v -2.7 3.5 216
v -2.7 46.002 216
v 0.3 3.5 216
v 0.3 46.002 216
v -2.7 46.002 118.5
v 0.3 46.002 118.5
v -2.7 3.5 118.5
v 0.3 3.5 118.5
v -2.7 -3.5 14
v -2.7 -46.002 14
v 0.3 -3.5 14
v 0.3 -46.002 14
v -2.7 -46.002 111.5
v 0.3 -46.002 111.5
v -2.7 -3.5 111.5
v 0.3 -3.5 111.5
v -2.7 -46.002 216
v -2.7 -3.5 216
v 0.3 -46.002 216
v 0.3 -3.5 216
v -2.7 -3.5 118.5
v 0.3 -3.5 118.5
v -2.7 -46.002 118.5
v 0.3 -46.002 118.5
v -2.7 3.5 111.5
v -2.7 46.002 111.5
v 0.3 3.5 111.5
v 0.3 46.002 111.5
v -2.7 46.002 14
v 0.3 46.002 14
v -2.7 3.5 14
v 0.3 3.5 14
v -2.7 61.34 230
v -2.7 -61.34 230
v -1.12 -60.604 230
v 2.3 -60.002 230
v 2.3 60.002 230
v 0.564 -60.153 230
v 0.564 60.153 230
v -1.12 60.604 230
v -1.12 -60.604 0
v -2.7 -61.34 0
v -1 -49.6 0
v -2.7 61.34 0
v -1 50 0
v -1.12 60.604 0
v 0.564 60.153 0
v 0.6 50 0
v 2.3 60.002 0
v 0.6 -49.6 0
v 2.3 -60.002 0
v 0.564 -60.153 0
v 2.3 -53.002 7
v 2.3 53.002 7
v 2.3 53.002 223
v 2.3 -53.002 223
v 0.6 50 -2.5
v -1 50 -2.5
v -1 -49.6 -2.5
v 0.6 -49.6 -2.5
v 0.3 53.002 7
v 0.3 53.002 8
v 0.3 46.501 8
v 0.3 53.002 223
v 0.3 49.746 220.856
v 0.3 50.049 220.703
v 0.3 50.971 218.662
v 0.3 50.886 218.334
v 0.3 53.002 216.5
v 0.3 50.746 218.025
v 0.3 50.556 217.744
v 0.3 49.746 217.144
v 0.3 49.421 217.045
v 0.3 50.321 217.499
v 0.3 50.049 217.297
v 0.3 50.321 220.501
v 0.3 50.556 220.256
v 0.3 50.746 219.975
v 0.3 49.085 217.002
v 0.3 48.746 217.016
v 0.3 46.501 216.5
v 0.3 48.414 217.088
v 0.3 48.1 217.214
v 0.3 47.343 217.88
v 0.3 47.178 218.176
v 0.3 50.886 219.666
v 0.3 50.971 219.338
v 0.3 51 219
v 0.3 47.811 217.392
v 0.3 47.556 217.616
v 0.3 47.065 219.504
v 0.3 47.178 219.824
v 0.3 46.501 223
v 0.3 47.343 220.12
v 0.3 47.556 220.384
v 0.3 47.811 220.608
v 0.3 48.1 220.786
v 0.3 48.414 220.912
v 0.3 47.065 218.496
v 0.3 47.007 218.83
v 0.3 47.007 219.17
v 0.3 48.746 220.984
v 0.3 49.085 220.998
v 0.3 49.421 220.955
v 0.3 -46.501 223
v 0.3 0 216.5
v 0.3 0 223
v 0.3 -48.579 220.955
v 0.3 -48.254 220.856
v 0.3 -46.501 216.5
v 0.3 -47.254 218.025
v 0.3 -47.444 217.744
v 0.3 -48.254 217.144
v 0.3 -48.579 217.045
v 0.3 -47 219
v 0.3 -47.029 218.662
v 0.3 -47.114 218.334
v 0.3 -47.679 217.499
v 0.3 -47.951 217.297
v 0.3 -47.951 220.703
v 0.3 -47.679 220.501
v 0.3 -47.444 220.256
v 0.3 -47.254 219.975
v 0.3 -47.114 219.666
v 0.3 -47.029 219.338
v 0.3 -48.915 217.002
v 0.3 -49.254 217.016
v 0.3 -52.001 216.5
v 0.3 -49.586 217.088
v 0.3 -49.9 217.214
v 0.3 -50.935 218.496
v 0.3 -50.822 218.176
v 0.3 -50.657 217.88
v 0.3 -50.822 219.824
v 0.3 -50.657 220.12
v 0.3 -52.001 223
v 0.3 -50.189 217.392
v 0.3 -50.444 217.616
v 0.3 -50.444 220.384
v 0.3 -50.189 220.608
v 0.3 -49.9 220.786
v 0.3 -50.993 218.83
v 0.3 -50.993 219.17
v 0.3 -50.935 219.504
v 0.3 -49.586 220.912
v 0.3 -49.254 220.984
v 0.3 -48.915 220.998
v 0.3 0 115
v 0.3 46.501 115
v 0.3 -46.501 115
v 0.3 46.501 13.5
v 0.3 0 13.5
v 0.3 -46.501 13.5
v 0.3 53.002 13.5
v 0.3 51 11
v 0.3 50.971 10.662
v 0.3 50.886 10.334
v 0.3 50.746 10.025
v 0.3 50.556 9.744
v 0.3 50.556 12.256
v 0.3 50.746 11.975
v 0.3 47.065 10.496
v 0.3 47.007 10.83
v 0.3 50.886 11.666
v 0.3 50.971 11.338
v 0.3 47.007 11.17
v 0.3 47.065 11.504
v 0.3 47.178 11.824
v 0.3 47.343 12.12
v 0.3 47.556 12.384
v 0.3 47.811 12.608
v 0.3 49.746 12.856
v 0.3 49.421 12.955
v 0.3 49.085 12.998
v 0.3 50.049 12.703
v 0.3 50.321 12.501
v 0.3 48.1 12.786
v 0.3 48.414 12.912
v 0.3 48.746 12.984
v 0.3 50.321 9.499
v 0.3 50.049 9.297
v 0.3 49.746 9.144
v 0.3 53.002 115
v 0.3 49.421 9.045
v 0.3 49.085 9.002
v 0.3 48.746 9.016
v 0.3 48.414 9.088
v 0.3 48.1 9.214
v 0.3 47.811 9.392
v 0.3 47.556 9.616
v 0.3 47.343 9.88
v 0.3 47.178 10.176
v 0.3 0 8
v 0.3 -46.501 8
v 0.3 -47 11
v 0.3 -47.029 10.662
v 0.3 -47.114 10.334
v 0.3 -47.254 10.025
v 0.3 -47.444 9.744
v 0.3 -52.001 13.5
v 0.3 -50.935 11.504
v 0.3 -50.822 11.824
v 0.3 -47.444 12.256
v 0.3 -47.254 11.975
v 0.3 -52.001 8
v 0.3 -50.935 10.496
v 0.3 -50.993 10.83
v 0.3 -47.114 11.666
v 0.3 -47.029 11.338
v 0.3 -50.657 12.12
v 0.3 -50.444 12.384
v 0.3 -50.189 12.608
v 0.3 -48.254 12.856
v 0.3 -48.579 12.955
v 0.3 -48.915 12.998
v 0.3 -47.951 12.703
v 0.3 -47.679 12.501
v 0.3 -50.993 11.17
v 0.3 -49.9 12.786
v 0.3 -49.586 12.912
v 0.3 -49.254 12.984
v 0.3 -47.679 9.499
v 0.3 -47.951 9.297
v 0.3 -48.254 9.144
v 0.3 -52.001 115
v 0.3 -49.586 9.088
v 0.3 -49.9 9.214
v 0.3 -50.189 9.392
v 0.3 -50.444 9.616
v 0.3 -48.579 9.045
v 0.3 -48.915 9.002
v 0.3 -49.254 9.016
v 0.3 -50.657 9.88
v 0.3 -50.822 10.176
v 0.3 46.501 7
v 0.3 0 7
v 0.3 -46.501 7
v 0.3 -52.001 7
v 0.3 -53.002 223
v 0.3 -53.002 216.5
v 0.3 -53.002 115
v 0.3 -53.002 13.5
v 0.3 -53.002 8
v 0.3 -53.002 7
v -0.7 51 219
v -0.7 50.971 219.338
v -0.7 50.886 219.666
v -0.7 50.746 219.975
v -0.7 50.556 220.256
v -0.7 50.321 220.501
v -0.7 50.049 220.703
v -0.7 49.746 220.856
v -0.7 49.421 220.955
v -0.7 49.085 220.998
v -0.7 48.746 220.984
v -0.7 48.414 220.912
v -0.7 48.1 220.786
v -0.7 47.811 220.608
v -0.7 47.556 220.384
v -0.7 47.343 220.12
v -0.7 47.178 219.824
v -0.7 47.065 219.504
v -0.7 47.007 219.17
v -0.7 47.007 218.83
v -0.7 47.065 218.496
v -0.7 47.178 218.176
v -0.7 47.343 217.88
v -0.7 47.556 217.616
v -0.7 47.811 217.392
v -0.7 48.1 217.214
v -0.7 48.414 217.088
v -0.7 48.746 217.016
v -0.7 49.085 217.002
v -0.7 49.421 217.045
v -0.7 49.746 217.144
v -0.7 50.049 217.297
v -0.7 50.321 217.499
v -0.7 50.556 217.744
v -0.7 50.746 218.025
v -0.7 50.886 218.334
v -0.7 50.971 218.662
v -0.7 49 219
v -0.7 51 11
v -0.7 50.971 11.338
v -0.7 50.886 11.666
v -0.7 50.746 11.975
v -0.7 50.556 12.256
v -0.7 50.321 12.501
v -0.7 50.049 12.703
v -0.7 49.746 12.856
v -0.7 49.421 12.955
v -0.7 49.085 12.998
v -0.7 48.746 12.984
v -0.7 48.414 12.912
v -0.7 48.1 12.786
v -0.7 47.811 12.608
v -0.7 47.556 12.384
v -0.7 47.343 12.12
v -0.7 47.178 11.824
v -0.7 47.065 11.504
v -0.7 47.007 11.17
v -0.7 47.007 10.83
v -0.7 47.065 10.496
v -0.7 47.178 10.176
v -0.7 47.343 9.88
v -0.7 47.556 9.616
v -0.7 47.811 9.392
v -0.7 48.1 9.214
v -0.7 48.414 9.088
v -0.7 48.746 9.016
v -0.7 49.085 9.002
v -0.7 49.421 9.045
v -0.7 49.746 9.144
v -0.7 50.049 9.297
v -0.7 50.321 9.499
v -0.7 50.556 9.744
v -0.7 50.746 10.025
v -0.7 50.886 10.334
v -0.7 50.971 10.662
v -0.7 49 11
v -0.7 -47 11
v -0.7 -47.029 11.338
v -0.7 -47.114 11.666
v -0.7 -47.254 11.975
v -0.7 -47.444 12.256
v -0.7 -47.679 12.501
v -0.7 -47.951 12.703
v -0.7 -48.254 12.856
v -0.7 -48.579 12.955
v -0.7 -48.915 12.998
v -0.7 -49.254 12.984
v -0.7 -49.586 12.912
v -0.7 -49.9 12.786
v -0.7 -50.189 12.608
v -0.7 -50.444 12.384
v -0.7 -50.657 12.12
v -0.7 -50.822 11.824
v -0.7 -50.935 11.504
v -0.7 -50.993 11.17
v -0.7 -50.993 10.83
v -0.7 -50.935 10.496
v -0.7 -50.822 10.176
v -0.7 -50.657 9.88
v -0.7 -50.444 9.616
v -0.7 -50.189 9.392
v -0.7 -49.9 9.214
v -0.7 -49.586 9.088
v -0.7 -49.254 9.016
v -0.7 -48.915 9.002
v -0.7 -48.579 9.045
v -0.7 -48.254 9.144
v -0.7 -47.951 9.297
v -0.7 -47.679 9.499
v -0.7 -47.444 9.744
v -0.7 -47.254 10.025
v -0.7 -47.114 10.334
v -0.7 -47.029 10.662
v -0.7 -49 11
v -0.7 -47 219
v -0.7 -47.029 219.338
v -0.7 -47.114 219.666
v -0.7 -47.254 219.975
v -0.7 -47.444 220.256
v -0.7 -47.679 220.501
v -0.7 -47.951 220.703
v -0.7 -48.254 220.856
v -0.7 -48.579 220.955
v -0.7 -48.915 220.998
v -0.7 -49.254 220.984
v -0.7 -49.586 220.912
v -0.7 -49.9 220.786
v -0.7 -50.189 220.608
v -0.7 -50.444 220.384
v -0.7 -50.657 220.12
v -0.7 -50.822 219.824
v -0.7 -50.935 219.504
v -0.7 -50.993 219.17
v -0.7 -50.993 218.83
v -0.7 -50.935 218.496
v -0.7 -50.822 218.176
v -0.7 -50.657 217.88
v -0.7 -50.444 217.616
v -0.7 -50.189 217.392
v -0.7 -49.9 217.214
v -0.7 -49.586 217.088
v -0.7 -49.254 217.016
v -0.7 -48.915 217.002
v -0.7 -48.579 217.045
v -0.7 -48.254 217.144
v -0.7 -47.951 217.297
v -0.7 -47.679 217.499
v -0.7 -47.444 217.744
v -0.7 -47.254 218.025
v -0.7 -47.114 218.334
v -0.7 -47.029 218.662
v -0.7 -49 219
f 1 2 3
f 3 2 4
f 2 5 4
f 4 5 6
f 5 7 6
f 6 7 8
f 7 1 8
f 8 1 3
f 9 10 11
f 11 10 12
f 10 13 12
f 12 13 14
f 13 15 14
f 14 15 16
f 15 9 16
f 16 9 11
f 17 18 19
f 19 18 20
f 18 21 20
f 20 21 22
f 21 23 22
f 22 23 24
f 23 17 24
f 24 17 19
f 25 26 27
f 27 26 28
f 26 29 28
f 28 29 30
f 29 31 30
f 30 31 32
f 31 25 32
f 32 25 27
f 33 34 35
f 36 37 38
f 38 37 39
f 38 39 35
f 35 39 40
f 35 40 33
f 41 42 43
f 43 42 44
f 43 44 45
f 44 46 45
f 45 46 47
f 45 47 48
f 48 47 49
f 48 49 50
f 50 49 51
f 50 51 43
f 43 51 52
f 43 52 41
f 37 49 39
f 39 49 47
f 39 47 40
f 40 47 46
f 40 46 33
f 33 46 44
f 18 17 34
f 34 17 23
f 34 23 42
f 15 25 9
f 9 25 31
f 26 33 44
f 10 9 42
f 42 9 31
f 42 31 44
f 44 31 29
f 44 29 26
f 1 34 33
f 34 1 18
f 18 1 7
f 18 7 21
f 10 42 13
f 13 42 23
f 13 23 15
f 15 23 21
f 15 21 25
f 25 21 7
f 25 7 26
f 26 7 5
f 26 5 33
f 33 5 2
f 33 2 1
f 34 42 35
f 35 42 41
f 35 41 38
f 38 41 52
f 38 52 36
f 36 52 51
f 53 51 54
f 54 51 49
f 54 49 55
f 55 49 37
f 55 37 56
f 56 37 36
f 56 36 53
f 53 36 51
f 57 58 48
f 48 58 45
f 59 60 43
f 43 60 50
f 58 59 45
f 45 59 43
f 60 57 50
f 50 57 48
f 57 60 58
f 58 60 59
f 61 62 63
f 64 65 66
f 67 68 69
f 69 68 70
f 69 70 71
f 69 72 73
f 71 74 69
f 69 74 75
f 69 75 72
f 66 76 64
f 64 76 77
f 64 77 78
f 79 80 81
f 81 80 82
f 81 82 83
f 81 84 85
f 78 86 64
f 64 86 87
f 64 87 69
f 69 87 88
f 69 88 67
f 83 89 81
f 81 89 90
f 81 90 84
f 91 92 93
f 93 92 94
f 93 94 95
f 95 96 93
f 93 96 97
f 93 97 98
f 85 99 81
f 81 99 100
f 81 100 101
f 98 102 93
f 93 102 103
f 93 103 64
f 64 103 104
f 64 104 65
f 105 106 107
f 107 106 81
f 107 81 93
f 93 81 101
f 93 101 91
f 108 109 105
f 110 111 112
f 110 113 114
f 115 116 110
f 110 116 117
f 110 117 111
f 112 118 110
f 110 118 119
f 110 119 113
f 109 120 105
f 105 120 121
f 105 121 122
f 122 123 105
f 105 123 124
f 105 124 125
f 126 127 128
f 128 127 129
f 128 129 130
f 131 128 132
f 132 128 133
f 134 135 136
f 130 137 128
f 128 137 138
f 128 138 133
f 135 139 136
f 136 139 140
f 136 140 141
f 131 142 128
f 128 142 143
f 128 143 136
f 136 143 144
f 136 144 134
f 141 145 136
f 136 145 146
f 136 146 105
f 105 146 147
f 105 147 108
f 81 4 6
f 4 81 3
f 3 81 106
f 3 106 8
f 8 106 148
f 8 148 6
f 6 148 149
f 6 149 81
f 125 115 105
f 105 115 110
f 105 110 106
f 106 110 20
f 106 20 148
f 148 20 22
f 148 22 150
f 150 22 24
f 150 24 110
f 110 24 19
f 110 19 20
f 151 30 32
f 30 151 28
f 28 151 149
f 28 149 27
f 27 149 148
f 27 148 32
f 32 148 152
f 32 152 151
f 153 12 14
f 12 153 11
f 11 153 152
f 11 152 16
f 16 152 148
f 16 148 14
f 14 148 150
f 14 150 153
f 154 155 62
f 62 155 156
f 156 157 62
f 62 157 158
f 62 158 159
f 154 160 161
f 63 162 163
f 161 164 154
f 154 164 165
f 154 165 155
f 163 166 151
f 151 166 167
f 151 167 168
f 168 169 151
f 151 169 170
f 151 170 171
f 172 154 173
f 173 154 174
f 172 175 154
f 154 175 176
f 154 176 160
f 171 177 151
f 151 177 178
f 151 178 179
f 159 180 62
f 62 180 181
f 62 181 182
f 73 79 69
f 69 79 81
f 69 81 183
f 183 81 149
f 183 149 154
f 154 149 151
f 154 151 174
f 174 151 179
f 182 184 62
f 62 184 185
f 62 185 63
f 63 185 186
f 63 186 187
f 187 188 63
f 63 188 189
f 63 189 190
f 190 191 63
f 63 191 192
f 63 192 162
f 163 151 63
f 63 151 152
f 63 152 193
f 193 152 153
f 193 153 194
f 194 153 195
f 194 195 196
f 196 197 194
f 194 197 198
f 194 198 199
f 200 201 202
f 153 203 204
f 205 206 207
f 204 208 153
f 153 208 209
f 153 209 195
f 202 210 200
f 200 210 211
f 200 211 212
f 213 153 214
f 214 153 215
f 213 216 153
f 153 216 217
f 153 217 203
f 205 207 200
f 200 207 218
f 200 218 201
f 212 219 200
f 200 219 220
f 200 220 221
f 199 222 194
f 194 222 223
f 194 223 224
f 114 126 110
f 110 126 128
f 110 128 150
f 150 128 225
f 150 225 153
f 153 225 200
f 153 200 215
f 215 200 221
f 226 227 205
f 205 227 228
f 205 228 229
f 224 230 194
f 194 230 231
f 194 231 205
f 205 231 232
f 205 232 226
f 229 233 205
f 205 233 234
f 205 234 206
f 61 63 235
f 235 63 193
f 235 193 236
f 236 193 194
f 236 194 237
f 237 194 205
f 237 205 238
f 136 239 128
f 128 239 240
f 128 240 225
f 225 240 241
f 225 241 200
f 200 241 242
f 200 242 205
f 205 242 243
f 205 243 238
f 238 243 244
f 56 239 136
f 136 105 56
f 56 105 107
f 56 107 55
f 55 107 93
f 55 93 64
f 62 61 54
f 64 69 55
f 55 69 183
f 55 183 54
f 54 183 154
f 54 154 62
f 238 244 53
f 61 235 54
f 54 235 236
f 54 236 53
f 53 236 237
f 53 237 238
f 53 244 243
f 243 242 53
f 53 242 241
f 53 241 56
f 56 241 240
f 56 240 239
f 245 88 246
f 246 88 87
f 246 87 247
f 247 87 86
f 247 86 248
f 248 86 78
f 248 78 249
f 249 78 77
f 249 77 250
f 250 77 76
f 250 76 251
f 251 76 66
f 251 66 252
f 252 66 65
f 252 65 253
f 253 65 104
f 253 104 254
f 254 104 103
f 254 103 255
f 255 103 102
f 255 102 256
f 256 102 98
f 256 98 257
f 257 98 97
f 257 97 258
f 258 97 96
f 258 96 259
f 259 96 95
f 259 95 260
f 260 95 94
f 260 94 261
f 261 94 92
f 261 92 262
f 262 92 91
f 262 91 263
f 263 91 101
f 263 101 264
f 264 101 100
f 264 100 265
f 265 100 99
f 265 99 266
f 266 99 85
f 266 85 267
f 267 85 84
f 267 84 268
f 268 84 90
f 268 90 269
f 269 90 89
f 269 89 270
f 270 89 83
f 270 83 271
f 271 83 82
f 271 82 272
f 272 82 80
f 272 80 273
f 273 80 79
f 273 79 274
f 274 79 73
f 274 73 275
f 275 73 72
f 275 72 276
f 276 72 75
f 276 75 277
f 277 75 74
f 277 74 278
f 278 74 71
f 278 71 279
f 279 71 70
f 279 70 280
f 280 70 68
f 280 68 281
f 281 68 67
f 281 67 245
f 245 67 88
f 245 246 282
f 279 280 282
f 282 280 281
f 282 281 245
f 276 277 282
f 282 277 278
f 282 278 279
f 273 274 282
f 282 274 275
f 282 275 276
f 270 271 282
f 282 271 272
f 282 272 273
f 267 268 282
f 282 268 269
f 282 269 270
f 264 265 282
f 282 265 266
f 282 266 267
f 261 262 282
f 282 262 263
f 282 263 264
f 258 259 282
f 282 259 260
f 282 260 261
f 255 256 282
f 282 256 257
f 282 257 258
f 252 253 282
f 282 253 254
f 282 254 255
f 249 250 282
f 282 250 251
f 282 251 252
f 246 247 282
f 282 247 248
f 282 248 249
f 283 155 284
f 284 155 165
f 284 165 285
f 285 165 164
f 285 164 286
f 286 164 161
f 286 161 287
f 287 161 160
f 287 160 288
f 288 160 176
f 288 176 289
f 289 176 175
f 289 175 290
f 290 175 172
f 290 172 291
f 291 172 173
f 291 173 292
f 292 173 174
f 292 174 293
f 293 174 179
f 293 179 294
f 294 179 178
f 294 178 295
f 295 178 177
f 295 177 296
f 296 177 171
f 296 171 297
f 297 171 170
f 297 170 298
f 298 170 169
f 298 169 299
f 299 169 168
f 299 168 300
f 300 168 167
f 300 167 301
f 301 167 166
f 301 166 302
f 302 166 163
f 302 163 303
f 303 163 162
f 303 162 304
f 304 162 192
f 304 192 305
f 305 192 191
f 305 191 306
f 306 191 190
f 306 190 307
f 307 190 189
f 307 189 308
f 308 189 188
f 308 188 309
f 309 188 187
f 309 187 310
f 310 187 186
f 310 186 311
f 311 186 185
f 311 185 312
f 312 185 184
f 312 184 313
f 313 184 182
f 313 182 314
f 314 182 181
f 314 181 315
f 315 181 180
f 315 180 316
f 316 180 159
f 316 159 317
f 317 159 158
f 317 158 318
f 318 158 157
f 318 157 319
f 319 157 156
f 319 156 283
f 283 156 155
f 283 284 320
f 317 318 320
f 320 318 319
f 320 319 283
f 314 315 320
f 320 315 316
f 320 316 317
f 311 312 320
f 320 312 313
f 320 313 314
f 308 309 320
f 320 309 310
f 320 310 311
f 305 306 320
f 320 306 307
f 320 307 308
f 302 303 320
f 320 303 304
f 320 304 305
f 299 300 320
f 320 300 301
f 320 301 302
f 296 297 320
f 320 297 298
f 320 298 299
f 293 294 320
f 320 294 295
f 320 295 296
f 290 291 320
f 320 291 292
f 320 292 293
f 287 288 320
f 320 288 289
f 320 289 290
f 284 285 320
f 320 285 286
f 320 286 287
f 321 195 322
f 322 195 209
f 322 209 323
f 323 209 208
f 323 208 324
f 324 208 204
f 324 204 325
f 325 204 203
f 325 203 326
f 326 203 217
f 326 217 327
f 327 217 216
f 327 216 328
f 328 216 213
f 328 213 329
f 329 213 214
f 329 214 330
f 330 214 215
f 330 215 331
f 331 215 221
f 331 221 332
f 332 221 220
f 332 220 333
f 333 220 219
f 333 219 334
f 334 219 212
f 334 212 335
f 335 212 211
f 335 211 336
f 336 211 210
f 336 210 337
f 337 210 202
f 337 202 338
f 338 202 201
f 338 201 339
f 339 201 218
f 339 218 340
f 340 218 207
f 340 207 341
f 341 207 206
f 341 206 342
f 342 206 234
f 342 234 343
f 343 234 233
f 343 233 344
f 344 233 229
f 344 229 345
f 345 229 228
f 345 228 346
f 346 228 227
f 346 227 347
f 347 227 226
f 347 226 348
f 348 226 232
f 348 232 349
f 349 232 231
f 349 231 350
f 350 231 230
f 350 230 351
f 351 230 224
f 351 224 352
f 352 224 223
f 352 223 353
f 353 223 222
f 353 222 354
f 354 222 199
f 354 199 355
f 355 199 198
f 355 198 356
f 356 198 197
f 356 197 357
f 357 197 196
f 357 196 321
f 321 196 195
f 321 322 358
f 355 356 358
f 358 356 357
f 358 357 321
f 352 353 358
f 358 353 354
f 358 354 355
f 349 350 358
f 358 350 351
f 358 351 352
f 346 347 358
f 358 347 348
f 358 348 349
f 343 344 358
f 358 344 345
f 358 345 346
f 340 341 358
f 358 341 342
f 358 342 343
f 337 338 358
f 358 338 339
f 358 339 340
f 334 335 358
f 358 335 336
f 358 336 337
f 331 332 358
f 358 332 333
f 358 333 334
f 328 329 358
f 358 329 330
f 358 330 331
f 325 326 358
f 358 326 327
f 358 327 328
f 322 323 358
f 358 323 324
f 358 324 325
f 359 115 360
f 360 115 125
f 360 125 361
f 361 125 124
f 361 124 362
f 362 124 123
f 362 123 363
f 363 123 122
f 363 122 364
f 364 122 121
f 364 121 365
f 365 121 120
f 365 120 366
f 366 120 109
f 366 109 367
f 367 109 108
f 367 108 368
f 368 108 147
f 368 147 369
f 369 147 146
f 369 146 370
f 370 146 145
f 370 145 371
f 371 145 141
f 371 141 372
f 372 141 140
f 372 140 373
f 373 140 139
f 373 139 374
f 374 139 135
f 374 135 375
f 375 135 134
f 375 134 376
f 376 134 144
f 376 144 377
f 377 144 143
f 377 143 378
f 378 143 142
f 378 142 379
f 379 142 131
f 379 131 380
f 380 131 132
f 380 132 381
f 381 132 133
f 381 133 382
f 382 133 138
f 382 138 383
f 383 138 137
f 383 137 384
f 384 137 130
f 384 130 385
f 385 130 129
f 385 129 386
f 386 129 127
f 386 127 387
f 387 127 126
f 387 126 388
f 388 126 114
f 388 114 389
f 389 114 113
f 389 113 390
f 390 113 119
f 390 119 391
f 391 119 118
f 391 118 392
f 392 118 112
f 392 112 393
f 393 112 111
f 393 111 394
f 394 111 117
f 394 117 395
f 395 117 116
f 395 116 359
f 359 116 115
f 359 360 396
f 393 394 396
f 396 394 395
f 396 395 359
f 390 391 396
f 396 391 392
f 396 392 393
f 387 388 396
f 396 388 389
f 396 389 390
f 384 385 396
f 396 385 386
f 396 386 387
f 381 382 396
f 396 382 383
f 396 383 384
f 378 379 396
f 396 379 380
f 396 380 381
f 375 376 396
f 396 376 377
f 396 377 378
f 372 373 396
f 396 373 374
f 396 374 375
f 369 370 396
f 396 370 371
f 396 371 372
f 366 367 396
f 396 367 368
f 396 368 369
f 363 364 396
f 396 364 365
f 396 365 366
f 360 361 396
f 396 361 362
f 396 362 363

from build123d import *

# Parameters (mm, degrees)
ESBO_O1_W                = 1.6
ESBO_O1_H                = 99.6
RESSALTO_EXTRUS_O1_DEPTH = 230
ESBO_O2_W                = 1.6
ESBO_O2_H                = 99.6
RESSALTO_EXTRUS_O2_DEPTH = 232.5
ESBO_O5_W                = 97.5
ESBO_O5_H                = 42.5020002
CORTE_EXTRUS_O1_DEPTH    = 230
ESBO_O3_W                = 216
ESBO_O3_H                = 106.0040004
CORTE_EXTRUS_O2_DEPTH    = 2
ESBO_O8_R                = 2
CORTE_EXTRUS_O3_DEPTH    = 1


with BuildPart() as part:
    # Esboço1 → Ressalto-extrusão1 (new body)
    with BuildSketch(Plane.XY):
        with BuildLine():
            Line((-2.7, -61.339745962), (-2.7, 61.339745962))
            ThreePointArc((-2.7, 61.339745962), (-0.288049674, 60.341775891), (2.3, 60.0020002))
            Line((2.3, 60.0020002), (2.3, -60.0020002))
            ThreePointArc((2.3, -60.0020002), (-0.288049674, -60.341775891), (-2.7, -61.339745962))
        make_face()
        with Locations((-0.2, 0.2)):
            Rectangle(ESBO_O1_W, ESBO_O1_H, mode=Mode.SUBTRACT)
    extrude(amount=RESSALTO_EXTRUS_O1_DEPTH)

    # Esboço2 → Ressalto-extrusão2 (add)
    with BuildSketch(Plane.XY.offset(230)):
        with Locations((-0.2, 0.2)):
            Rectangle(ESBO_O2_W, ESBO_O2_H)
    extrude(amount=-RESSALTO_EXTRUS_O2_DEPTH)

    # Esboço5 → Corte-extrusão1 (cut)
    with BuildSketch(Plane(origin=(2.3, 0, 0), x_dir=(0, 0, -1), z_dir=(1, 0, 0))):
        with Locations((-167.25, 24.7510001)):
            Rectangle(ESBO_O5_W, ESBO_O5_H)
        with Locations((-62.75, 24.7510001)):
            Rectangle(ESBO_O5_W, ESBO_O5_H)
        with Locations((-167.25, -24.7510001)):
            Rectangle(ESBO_O5_W, ESBO_O5_H)
        with Locations((-62.75, -24.7510001)):
            Rectangle(ESBO_O5_W, ESBO_O5_H)
    extrude(amount=-CORTE_EXTRUS_O1_DEPTH, mode=Mode.SUBTRACT)

    # Esboço3 → Corte-extrusão2 (cut)
    with BuildSketch(Plane(origin=(2.3, 0, 0), x_dir=(0, 0, -1), z_dir=(1, 0, 0))):
        with Locations((-115, 0)):
            Rectangle(ESBO_O3_W, ESBO_O3_H)
    extrude(amount=-CORTE_EXTRUS_O2_DEPTH, mode=Mode.SUBTRACT)

    # Esboço8 → Corte-extrusão3 (cut)
    with BuildSketch(Plane(origin=(0.3, 0, 0), x_dir=(0, 0, -1), z_dir=(1, 0, 0))):
        with Locations(Location((-219, 49, 0), (0, 0, 90))):
            Circle(ESBO_O8_R)
        with Locations(Location((-11, 49, 0), (0, 0, 90))):
            Circle(ESBO_O8_R)
        with Locations(Location((-11, -49, 0), (0, 0, 90))):
            Circle(ESBO_O8_R)
        with Locations(Location((-219, -49, 0), (0, 0, 90))):
            Circle(ESBO_O8_R)
    extrude(amount=-CORTE_EXTRUS_O3_DEPTH, mode=Mode.SUBTRACT)


solid = part.part
